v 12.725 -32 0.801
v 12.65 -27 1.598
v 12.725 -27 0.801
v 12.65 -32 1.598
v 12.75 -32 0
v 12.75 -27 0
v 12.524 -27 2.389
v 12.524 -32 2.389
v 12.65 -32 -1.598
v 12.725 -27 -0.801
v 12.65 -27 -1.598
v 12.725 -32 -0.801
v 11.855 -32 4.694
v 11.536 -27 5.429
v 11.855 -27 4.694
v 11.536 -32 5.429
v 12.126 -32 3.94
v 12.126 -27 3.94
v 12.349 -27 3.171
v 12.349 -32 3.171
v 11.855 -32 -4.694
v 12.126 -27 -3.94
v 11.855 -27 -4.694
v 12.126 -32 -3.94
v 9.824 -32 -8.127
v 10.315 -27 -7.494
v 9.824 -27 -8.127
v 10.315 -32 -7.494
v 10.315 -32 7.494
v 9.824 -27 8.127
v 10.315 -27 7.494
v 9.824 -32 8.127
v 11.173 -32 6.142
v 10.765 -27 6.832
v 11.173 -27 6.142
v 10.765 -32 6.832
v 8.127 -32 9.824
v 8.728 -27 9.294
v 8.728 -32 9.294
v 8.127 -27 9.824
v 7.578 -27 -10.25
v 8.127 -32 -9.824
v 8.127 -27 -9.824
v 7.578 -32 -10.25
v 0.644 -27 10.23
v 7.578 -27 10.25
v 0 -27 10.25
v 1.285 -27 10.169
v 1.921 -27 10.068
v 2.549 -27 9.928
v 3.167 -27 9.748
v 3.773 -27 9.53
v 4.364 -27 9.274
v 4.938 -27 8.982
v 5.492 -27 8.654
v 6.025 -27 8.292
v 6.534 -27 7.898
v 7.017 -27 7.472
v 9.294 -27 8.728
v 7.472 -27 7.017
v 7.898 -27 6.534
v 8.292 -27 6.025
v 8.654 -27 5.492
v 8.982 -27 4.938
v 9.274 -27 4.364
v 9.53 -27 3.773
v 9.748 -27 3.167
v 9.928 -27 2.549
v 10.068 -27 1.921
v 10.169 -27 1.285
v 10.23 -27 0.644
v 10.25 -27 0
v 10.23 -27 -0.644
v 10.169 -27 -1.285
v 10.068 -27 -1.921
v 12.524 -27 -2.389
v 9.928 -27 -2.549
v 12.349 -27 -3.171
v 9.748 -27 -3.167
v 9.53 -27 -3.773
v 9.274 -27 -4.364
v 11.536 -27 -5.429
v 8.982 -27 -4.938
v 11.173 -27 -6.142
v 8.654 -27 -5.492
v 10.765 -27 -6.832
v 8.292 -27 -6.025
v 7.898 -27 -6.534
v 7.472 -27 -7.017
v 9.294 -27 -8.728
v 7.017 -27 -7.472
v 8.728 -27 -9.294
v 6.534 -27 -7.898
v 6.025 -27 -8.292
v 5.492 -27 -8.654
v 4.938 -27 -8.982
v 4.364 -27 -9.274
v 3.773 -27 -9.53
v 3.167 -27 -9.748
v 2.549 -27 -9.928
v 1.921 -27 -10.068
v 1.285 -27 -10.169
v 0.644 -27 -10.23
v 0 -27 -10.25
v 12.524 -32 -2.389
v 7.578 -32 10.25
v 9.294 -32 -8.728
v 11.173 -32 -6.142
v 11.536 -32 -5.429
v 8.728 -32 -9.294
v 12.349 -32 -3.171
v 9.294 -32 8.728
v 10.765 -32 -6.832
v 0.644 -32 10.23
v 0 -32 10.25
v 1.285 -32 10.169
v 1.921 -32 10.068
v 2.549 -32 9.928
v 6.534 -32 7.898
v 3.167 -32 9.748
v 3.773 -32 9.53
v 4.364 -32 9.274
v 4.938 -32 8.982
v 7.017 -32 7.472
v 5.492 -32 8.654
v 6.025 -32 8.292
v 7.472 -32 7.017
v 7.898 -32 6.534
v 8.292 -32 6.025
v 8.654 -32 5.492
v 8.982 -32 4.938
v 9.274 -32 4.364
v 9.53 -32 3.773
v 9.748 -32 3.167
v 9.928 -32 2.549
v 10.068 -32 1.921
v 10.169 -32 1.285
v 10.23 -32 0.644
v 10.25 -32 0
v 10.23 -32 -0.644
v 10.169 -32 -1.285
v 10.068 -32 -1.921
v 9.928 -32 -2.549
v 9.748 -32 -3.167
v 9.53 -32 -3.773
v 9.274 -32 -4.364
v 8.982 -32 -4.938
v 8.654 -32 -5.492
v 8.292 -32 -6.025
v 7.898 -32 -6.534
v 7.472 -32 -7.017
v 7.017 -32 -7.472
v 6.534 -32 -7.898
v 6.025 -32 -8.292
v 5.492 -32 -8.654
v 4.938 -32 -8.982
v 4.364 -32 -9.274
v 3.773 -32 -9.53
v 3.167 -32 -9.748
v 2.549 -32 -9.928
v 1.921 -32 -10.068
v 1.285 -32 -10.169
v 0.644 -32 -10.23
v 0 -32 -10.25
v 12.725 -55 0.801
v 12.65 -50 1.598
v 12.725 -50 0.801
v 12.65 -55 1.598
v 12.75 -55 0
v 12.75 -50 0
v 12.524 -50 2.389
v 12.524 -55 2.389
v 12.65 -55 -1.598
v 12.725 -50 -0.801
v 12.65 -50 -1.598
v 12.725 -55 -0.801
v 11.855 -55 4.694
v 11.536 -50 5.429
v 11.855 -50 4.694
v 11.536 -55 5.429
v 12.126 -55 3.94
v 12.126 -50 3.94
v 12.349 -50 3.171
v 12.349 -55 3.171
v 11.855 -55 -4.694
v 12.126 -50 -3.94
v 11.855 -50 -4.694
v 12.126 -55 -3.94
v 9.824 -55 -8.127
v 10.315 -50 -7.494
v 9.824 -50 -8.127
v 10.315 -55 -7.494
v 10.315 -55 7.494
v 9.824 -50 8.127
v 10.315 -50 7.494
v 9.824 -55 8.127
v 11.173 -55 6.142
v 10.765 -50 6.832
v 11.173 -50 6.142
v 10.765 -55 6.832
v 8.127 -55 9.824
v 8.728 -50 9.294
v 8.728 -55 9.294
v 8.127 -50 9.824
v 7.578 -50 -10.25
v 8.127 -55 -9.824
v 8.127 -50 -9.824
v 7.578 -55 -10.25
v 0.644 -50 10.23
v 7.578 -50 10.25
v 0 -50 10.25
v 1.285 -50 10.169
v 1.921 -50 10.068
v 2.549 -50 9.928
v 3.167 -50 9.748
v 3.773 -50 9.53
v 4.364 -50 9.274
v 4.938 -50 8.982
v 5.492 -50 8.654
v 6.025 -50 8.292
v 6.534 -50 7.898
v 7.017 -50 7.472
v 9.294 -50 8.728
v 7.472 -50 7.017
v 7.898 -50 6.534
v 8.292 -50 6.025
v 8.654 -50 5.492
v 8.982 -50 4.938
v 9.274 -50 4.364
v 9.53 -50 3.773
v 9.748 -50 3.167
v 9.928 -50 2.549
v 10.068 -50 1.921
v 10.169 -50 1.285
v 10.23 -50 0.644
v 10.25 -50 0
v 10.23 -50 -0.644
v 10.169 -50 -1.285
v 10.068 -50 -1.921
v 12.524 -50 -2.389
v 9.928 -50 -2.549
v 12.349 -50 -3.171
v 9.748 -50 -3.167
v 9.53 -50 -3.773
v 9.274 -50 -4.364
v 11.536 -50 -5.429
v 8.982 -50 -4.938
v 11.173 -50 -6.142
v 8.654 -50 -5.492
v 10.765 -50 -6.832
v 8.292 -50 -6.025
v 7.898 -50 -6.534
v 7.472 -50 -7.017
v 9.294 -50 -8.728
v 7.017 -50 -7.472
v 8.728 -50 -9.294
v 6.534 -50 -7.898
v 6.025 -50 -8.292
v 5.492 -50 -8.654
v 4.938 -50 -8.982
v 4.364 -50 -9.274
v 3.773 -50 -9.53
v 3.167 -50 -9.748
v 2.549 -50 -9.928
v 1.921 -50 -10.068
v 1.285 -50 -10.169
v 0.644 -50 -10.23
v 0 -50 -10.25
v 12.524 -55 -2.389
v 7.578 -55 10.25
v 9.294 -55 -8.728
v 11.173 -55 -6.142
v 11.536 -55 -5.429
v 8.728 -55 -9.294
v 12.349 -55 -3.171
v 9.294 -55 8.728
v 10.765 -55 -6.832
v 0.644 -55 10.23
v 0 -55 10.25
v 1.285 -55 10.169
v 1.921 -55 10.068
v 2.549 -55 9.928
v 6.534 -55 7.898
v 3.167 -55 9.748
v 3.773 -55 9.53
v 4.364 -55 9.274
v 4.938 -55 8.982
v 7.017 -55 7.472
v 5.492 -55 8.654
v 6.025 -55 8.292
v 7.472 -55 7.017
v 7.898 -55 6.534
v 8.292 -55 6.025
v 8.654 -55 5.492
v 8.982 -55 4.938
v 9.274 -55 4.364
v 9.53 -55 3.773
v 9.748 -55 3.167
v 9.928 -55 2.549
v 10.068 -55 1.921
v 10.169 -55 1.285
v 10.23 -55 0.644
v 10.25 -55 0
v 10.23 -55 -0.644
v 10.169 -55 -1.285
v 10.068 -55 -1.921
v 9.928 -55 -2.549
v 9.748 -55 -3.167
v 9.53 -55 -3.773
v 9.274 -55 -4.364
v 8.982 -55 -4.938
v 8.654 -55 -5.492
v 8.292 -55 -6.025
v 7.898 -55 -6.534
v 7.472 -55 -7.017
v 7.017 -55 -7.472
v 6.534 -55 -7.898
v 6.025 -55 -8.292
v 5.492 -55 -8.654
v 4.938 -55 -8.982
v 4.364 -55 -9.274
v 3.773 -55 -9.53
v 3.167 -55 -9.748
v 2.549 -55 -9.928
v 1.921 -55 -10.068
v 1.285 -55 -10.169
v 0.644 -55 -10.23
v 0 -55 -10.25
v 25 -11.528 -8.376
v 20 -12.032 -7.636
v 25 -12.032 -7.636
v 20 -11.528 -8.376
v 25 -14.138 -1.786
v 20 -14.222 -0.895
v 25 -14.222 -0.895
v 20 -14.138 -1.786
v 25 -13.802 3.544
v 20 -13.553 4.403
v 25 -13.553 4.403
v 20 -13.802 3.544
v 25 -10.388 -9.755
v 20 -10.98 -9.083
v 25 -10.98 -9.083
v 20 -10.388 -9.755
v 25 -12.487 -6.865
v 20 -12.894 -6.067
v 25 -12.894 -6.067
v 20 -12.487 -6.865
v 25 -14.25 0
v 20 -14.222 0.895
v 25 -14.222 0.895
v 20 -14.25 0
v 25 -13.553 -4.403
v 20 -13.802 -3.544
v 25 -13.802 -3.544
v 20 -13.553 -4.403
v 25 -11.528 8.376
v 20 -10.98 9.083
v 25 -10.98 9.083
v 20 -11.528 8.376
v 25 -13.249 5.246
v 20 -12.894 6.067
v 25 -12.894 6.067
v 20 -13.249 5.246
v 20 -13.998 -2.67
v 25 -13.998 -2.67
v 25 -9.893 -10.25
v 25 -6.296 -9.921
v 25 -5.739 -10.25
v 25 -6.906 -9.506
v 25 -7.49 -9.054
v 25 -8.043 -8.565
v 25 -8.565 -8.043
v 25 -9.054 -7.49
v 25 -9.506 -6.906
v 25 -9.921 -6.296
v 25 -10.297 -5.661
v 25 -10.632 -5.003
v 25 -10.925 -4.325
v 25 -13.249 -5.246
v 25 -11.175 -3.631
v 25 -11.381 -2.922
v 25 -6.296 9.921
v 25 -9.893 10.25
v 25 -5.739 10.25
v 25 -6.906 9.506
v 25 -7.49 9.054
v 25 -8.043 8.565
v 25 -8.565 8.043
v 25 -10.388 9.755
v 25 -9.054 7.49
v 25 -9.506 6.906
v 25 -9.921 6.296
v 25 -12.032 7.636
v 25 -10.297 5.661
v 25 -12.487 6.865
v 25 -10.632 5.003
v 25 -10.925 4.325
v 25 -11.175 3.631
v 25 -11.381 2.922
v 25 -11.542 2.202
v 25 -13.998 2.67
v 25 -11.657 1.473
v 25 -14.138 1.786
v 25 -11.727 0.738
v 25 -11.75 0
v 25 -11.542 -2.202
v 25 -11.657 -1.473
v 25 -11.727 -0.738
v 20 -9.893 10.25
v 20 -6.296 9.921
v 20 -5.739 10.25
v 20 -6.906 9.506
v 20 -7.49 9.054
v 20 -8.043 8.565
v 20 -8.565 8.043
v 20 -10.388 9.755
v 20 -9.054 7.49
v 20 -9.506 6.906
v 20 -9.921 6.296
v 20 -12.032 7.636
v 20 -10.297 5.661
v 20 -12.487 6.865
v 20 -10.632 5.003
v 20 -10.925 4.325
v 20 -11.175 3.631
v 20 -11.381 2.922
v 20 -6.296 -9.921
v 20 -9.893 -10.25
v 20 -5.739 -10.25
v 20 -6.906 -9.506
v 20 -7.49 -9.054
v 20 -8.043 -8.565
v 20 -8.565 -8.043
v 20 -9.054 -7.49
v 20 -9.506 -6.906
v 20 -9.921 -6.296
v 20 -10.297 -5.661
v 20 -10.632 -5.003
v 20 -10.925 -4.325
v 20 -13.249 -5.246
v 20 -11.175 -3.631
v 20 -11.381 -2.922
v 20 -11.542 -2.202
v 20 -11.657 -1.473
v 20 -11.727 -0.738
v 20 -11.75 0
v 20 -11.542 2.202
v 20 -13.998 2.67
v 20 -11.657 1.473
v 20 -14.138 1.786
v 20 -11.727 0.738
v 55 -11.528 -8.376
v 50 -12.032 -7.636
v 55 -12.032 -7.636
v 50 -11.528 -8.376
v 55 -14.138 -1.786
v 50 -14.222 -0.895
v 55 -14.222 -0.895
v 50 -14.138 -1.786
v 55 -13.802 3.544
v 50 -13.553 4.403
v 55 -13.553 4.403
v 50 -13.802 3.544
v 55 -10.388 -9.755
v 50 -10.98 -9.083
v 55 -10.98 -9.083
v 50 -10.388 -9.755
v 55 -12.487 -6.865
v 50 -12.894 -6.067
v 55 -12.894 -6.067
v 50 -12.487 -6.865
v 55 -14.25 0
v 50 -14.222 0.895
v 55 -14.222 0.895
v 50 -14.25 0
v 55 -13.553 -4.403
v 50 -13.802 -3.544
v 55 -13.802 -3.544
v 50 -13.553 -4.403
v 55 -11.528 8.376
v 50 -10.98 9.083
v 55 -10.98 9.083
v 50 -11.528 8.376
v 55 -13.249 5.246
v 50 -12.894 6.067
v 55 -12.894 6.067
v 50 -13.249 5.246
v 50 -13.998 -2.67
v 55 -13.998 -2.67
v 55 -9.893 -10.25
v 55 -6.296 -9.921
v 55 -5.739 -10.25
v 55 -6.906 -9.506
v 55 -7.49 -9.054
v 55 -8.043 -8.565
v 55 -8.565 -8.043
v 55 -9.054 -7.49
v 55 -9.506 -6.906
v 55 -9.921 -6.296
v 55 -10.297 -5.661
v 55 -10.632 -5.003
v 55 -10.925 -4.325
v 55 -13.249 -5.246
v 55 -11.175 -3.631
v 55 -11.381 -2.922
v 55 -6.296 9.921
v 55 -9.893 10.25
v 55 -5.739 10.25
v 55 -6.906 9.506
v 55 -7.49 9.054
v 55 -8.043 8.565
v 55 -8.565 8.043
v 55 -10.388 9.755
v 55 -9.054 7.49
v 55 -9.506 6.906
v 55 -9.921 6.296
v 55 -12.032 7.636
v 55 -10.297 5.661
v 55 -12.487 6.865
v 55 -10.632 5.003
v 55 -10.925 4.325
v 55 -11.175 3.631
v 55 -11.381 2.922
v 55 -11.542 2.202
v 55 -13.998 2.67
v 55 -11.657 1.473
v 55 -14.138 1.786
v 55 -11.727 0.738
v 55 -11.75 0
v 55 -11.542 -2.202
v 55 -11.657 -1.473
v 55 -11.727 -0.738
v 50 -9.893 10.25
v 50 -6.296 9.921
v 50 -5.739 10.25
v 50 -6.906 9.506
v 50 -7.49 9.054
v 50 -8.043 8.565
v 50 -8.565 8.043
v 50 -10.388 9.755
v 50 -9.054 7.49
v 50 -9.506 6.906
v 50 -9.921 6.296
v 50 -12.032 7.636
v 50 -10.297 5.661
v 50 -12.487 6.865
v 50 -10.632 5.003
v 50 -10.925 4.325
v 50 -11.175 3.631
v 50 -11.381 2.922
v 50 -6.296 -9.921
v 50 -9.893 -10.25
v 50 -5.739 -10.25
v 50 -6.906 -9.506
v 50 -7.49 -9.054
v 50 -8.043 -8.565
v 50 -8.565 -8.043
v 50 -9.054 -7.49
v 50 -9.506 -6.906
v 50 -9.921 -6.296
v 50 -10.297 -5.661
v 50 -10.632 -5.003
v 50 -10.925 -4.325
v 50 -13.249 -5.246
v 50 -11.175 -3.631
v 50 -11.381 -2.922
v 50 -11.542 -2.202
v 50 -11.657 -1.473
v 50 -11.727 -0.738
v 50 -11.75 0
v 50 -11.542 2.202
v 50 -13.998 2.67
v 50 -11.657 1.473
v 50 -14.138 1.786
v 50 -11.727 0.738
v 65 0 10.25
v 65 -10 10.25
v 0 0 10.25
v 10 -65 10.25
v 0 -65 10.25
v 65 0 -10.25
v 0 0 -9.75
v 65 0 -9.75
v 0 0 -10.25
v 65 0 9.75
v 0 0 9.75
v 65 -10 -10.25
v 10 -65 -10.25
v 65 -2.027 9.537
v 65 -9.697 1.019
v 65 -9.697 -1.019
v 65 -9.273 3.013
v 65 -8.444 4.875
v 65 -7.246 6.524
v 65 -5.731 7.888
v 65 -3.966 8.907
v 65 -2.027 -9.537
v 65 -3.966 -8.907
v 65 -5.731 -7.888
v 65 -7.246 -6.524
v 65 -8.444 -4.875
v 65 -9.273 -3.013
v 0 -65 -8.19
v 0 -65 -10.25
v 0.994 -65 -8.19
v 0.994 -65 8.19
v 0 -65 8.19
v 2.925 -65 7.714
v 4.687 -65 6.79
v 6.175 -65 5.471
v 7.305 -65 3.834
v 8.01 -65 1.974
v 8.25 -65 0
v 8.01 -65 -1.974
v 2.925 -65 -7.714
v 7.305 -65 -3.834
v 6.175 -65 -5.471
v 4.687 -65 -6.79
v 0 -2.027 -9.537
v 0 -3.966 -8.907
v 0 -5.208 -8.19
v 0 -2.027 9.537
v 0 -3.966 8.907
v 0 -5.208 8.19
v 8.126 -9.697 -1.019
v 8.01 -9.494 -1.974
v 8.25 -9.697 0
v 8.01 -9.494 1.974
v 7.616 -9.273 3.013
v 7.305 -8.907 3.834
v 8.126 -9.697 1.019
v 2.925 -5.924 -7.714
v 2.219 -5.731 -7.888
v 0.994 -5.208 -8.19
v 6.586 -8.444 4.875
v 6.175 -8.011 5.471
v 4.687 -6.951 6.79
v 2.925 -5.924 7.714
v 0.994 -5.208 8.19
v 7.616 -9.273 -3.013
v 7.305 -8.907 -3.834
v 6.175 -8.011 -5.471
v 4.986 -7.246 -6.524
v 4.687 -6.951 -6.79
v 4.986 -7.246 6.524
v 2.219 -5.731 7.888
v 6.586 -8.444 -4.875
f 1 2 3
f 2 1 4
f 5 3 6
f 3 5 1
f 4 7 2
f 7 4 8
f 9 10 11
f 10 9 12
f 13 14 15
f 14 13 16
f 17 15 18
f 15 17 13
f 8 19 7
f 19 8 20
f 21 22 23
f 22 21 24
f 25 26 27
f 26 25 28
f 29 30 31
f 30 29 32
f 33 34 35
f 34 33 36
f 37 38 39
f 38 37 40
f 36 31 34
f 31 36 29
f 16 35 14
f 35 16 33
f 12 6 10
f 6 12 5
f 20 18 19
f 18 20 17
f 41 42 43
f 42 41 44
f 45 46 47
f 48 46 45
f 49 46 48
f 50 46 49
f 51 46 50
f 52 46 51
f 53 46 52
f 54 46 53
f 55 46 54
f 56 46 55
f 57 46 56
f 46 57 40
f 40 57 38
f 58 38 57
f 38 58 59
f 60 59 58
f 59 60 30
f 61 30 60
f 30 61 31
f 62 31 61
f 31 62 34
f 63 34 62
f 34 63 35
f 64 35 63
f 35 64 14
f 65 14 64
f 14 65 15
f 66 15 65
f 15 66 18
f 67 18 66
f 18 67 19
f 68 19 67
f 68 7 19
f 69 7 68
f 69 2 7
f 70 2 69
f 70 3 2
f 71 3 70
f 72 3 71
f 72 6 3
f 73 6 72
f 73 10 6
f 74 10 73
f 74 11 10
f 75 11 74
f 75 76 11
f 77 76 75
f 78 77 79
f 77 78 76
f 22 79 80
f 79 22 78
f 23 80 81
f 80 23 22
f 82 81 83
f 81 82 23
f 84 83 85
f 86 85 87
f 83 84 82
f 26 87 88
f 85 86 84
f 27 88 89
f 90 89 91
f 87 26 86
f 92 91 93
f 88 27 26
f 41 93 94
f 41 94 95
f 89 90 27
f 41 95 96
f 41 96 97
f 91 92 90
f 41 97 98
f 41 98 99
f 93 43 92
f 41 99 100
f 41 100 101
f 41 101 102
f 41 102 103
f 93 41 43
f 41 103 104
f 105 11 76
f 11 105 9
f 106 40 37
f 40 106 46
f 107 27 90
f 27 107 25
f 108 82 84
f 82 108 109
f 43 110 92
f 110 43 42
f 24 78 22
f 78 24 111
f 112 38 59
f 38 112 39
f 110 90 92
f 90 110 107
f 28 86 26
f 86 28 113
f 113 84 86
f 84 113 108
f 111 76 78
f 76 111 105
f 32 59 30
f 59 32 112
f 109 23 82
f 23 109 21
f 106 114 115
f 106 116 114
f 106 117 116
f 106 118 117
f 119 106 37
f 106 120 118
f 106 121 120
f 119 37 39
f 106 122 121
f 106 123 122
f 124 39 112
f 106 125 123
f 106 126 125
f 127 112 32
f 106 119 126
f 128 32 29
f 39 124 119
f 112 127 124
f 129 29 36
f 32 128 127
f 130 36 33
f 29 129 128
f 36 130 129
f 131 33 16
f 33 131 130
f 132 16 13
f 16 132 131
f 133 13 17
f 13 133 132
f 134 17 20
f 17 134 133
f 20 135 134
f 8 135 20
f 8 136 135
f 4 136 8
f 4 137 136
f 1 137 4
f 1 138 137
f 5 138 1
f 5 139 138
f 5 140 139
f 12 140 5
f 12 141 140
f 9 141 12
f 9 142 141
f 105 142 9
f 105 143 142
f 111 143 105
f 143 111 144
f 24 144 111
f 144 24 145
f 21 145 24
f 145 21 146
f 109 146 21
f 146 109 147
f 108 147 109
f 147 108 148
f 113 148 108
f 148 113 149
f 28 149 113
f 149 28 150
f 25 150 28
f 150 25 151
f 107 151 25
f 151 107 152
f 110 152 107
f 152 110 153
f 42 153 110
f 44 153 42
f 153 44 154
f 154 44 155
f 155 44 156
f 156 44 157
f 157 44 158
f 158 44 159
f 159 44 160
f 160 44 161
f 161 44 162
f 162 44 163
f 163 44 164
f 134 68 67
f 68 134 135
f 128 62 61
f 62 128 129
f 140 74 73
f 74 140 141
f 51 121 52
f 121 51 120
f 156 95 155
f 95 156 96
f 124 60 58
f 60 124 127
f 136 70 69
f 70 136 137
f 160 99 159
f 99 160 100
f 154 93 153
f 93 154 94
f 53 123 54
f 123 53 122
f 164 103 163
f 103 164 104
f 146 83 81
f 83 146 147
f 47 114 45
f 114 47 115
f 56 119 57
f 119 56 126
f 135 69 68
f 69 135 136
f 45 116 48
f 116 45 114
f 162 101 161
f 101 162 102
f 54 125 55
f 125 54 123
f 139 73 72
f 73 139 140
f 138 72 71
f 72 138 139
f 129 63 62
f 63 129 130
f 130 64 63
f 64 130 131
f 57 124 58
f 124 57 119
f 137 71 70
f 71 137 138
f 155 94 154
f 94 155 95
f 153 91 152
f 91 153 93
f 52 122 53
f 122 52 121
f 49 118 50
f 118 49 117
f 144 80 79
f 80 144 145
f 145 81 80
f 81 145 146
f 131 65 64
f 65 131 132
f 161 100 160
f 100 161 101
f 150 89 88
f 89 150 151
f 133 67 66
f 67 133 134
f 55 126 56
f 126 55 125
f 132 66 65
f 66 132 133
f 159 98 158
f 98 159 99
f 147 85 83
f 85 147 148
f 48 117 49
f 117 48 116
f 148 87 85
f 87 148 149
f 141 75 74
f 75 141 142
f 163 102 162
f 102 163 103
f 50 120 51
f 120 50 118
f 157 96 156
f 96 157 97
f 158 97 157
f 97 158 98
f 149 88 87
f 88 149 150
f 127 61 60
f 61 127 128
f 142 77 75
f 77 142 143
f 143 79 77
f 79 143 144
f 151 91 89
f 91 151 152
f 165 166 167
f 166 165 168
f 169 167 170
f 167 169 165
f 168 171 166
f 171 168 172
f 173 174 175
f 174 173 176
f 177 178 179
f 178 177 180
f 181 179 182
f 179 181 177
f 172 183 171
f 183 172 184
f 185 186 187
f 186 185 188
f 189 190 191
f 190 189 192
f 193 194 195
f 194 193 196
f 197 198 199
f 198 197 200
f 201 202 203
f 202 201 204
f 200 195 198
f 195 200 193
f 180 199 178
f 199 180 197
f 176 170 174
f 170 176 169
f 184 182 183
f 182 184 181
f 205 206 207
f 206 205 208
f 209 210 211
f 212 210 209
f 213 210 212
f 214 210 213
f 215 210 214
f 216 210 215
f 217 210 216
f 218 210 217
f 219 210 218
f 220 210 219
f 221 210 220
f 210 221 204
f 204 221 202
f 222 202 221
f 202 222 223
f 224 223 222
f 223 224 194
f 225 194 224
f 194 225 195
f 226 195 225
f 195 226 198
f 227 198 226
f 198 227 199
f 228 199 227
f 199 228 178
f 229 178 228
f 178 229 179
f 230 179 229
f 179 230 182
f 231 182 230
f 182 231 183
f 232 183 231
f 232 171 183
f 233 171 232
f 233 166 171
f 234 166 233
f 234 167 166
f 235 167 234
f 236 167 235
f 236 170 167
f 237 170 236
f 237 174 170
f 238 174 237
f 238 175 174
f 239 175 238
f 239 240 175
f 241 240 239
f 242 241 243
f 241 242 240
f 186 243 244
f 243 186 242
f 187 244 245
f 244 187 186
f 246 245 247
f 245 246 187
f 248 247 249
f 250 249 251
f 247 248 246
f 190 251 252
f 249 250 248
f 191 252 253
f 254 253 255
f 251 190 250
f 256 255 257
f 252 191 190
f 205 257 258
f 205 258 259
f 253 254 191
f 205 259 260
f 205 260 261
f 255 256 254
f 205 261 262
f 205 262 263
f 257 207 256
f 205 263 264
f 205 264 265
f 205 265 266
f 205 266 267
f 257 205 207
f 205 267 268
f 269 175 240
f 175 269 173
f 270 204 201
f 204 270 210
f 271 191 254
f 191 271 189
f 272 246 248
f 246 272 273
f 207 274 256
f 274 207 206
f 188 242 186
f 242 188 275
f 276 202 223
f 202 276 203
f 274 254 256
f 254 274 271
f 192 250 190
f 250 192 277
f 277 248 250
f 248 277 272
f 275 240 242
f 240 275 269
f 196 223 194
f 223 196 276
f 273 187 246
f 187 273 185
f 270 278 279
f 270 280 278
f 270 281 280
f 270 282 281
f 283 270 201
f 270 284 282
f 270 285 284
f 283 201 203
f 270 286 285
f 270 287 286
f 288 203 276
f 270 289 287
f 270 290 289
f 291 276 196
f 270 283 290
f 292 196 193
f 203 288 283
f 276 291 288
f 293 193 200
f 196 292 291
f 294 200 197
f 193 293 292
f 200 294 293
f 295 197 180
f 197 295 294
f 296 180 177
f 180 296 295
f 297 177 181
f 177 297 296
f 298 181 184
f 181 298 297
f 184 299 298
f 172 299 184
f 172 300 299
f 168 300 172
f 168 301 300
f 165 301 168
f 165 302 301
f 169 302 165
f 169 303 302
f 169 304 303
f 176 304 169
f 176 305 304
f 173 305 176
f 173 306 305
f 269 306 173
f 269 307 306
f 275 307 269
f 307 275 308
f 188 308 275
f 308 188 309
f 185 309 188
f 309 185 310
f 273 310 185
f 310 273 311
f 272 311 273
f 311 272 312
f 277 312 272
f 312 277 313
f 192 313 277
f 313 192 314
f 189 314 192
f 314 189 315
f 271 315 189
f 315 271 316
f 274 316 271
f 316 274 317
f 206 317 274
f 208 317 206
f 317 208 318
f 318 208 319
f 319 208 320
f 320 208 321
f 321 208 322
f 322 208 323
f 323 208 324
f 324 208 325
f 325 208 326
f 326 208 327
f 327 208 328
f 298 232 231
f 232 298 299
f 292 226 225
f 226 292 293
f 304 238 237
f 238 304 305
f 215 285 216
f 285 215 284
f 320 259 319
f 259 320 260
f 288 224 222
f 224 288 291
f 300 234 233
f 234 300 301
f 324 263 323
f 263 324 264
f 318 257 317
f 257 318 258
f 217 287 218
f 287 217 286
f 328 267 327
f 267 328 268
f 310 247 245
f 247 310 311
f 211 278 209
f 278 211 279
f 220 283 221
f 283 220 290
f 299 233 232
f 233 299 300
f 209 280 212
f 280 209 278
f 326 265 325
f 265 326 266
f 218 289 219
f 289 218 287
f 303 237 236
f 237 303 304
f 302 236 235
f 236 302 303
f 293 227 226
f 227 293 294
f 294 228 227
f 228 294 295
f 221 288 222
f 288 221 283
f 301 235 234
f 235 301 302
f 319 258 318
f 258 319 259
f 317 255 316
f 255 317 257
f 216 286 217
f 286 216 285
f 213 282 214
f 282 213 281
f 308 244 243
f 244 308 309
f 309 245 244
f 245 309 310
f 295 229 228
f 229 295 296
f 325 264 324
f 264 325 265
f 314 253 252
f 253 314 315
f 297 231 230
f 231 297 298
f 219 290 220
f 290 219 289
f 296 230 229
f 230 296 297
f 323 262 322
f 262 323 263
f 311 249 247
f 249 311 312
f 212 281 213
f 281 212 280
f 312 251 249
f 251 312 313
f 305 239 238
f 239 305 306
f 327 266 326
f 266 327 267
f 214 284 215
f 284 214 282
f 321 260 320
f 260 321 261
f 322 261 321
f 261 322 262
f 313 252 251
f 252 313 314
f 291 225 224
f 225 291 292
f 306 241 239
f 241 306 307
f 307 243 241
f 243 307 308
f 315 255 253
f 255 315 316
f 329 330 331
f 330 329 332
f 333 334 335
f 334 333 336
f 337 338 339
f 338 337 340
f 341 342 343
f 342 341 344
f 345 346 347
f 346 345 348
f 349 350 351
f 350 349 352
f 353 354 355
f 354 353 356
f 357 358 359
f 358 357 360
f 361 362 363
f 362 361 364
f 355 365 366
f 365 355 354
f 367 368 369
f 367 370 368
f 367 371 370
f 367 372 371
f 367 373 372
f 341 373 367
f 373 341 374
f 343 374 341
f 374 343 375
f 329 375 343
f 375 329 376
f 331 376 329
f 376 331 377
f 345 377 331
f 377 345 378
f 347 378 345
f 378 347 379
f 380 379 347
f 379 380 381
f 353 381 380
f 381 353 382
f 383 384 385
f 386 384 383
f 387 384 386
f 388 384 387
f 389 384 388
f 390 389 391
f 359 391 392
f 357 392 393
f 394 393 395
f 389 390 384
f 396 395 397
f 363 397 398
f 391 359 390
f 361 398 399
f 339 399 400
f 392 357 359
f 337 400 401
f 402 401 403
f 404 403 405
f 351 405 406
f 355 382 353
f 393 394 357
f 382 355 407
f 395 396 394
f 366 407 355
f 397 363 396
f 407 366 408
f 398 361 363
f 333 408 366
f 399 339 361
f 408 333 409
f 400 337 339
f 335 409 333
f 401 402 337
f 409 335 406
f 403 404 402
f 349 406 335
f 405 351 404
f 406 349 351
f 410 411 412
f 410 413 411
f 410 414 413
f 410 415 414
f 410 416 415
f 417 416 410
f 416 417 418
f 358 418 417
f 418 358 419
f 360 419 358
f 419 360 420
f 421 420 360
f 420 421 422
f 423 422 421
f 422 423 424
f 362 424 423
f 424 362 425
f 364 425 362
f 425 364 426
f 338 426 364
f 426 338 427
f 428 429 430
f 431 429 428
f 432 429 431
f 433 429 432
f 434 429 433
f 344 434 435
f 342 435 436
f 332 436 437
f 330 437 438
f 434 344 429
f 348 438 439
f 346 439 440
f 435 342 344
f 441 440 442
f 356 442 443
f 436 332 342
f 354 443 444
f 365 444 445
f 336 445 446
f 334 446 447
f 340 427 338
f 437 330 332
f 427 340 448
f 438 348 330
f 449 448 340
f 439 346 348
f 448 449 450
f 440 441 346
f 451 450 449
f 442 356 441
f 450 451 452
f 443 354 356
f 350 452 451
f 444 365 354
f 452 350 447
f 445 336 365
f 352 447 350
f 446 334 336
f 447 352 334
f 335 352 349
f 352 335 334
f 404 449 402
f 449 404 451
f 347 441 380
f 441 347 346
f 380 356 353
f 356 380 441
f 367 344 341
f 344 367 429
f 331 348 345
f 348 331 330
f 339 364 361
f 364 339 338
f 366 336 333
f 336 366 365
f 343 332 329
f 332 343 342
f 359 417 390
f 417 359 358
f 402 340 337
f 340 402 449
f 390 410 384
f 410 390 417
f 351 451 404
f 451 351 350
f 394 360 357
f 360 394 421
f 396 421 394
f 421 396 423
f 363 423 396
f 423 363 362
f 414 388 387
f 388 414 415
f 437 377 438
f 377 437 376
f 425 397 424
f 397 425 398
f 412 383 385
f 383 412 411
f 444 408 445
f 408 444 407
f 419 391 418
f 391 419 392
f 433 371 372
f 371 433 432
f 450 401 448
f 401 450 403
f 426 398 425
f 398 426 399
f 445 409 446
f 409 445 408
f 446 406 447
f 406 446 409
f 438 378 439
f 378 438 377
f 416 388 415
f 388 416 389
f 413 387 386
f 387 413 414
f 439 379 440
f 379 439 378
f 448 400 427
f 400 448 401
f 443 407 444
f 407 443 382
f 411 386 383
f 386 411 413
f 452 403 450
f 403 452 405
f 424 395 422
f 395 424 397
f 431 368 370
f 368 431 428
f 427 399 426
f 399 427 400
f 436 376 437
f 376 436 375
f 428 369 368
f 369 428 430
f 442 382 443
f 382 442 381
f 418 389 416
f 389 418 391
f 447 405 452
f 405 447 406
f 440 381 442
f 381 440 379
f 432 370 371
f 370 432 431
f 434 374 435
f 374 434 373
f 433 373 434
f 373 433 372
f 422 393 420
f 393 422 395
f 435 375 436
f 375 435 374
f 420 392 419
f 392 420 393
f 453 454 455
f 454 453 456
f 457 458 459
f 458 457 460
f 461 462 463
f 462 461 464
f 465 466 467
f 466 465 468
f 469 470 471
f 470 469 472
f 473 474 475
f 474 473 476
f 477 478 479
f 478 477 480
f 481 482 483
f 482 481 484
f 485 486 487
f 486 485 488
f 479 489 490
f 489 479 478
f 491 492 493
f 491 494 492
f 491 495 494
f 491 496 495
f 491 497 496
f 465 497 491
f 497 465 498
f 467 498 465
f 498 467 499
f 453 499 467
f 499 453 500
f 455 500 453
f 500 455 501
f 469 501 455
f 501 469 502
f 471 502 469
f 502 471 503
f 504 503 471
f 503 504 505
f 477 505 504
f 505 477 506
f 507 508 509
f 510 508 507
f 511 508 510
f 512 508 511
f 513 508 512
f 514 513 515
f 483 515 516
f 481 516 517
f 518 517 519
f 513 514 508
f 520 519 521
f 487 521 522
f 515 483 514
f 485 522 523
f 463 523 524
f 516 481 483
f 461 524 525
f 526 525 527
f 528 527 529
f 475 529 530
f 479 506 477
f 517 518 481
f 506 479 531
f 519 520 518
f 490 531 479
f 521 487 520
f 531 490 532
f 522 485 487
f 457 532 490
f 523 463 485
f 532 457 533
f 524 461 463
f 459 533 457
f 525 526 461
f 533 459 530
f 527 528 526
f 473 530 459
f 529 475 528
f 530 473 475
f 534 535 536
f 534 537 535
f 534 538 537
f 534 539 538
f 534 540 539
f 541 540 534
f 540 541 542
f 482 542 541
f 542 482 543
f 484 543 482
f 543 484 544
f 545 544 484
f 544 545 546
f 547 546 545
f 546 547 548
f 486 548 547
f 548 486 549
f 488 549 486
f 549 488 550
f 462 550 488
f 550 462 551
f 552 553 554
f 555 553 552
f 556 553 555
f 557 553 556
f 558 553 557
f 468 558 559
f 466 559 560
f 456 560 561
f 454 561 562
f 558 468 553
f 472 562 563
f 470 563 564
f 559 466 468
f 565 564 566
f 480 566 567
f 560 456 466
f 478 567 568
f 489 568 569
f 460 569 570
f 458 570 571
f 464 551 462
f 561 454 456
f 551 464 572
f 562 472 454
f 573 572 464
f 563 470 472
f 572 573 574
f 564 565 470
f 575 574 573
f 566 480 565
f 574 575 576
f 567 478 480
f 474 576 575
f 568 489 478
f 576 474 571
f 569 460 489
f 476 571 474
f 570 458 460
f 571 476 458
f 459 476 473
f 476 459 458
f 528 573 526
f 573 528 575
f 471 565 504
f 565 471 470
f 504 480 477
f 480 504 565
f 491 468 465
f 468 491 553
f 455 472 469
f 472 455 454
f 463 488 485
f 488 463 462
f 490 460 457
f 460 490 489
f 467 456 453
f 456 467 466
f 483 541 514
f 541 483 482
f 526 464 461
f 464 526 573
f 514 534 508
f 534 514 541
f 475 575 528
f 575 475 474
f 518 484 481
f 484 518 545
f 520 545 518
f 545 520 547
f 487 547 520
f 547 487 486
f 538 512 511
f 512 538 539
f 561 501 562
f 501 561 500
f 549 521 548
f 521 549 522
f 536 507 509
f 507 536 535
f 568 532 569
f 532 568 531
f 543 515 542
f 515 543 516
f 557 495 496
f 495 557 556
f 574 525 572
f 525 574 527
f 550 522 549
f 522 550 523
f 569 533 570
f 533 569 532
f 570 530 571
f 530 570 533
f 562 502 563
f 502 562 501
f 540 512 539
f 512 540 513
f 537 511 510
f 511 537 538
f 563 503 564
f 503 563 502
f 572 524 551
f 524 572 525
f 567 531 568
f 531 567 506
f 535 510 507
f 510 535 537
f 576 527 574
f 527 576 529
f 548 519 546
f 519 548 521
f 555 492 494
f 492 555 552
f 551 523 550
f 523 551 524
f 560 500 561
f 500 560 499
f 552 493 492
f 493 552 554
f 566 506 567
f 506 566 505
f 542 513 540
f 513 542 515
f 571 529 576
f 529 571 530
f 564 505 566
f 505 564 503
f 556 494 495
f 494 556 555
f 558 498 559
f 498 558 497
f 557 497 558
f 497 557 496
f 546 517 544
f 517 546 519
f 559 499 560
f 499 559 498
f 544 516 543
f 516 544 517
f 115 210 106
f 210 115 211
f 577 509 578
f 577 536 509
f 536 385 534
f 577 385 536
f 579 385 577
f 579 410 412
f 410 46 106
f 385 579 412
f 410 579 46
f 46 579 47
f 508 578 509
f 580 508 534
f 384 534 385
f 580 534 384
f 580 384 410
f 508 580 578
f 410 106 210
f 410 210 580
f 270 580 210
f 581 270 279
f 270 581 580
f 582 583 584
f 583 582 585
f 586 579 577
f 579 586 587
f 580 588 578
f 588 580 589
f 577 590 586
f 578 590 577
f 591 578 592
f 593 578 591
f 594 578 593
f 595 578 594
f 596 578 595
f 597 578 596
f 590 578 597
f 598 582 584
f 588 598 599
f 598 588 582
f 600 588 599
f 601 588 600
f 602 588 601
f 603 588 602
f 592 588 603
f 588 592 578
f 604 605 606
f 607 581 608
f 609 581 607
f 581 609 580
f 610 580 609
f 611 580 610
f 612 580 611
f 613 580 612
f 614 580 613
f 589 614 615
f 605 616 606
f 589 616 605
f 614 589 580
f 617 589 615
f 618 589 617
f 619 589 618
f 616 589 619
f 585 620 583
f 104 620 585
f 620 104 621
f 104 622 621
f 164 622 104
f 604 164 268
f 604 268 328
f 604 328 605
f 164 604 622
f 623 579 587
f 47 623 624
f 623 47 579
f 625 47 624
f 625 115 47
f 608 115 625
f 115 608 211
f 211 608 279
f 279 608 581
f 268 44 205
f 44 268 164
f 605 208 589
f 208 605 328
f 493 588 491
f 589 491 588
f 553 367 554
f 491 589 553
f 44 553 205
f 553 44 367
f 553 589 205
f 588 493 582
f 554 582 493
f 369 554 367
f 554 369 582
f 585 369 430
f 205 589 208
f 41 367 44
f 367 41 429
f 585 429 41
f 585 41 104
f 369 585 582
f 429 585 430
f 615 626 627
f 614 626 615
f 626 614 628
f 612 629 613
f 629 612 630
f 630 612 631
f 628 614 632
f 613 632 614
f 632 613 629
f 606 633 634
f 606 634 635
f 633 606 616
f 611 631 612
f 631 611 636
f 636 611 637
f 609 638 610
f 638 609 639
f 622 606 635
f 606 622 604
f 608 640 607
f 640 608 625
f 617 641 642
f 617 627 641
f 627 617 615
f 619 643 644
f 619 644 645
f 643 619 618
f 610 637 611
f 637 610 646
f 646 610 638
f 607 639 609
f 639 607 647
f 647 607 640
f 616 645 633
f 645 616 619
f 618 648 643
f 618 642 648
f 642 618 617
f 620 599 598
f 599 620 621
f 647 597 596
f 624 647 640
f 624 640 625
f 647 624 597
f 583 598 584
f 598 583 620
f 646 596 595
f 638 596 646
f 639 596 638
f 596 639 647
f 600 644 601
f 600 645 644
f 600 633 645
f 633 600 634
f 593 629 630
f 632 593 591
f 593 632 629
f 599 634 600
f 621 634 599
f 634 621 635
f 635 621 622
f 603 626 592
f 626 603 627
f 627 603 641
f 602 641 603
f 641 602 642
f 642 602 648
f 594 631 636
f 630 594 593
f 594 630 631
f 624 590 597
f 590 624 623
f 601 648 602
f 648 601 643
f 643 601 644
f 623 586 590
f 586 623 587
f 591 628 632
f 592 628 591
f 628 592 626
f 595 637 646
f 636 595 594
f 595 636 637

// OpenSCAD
//zip_tie(100);
difference() {
    translate([0,0,-20.5/2]) linear_extrude(20.5)
        translate([10,-10,0]) polygon([[55,0], [0,-55], [-10,-55], [-10,10], [55,10]]);
    rotate([90,0,0]) cylinder(2000, 16.5/2, 16.5/2, center=true);
    #translate([0,-27,0]) rotate([90,0,0]) ziptie(16.5/2+2);
    translate([0,-50,0]) rotate([90,0,0]) ziptie(16.5/2+2);   
    rotate([0,90,0]) cylinder(2000, 19.5/2, 19.5/2, center=true);
    translate([20,0,0]) rotate([0,90,0]) ziptie(19.5/2+2);
    translate([50,0,0]) rotate([0,90,0]) ziptie(19.5/2+2);   

    // translate([50,-50,0]) cylinder(50, 35, 35, center=true);
}


module ziptie(in) {
    difference() {
        cylinder(5, in+2.5, in+2.5, $fn=100);
        translate([0,0,-1]) cylinder(5+2, in, in, $fn=100);
    }
} 
